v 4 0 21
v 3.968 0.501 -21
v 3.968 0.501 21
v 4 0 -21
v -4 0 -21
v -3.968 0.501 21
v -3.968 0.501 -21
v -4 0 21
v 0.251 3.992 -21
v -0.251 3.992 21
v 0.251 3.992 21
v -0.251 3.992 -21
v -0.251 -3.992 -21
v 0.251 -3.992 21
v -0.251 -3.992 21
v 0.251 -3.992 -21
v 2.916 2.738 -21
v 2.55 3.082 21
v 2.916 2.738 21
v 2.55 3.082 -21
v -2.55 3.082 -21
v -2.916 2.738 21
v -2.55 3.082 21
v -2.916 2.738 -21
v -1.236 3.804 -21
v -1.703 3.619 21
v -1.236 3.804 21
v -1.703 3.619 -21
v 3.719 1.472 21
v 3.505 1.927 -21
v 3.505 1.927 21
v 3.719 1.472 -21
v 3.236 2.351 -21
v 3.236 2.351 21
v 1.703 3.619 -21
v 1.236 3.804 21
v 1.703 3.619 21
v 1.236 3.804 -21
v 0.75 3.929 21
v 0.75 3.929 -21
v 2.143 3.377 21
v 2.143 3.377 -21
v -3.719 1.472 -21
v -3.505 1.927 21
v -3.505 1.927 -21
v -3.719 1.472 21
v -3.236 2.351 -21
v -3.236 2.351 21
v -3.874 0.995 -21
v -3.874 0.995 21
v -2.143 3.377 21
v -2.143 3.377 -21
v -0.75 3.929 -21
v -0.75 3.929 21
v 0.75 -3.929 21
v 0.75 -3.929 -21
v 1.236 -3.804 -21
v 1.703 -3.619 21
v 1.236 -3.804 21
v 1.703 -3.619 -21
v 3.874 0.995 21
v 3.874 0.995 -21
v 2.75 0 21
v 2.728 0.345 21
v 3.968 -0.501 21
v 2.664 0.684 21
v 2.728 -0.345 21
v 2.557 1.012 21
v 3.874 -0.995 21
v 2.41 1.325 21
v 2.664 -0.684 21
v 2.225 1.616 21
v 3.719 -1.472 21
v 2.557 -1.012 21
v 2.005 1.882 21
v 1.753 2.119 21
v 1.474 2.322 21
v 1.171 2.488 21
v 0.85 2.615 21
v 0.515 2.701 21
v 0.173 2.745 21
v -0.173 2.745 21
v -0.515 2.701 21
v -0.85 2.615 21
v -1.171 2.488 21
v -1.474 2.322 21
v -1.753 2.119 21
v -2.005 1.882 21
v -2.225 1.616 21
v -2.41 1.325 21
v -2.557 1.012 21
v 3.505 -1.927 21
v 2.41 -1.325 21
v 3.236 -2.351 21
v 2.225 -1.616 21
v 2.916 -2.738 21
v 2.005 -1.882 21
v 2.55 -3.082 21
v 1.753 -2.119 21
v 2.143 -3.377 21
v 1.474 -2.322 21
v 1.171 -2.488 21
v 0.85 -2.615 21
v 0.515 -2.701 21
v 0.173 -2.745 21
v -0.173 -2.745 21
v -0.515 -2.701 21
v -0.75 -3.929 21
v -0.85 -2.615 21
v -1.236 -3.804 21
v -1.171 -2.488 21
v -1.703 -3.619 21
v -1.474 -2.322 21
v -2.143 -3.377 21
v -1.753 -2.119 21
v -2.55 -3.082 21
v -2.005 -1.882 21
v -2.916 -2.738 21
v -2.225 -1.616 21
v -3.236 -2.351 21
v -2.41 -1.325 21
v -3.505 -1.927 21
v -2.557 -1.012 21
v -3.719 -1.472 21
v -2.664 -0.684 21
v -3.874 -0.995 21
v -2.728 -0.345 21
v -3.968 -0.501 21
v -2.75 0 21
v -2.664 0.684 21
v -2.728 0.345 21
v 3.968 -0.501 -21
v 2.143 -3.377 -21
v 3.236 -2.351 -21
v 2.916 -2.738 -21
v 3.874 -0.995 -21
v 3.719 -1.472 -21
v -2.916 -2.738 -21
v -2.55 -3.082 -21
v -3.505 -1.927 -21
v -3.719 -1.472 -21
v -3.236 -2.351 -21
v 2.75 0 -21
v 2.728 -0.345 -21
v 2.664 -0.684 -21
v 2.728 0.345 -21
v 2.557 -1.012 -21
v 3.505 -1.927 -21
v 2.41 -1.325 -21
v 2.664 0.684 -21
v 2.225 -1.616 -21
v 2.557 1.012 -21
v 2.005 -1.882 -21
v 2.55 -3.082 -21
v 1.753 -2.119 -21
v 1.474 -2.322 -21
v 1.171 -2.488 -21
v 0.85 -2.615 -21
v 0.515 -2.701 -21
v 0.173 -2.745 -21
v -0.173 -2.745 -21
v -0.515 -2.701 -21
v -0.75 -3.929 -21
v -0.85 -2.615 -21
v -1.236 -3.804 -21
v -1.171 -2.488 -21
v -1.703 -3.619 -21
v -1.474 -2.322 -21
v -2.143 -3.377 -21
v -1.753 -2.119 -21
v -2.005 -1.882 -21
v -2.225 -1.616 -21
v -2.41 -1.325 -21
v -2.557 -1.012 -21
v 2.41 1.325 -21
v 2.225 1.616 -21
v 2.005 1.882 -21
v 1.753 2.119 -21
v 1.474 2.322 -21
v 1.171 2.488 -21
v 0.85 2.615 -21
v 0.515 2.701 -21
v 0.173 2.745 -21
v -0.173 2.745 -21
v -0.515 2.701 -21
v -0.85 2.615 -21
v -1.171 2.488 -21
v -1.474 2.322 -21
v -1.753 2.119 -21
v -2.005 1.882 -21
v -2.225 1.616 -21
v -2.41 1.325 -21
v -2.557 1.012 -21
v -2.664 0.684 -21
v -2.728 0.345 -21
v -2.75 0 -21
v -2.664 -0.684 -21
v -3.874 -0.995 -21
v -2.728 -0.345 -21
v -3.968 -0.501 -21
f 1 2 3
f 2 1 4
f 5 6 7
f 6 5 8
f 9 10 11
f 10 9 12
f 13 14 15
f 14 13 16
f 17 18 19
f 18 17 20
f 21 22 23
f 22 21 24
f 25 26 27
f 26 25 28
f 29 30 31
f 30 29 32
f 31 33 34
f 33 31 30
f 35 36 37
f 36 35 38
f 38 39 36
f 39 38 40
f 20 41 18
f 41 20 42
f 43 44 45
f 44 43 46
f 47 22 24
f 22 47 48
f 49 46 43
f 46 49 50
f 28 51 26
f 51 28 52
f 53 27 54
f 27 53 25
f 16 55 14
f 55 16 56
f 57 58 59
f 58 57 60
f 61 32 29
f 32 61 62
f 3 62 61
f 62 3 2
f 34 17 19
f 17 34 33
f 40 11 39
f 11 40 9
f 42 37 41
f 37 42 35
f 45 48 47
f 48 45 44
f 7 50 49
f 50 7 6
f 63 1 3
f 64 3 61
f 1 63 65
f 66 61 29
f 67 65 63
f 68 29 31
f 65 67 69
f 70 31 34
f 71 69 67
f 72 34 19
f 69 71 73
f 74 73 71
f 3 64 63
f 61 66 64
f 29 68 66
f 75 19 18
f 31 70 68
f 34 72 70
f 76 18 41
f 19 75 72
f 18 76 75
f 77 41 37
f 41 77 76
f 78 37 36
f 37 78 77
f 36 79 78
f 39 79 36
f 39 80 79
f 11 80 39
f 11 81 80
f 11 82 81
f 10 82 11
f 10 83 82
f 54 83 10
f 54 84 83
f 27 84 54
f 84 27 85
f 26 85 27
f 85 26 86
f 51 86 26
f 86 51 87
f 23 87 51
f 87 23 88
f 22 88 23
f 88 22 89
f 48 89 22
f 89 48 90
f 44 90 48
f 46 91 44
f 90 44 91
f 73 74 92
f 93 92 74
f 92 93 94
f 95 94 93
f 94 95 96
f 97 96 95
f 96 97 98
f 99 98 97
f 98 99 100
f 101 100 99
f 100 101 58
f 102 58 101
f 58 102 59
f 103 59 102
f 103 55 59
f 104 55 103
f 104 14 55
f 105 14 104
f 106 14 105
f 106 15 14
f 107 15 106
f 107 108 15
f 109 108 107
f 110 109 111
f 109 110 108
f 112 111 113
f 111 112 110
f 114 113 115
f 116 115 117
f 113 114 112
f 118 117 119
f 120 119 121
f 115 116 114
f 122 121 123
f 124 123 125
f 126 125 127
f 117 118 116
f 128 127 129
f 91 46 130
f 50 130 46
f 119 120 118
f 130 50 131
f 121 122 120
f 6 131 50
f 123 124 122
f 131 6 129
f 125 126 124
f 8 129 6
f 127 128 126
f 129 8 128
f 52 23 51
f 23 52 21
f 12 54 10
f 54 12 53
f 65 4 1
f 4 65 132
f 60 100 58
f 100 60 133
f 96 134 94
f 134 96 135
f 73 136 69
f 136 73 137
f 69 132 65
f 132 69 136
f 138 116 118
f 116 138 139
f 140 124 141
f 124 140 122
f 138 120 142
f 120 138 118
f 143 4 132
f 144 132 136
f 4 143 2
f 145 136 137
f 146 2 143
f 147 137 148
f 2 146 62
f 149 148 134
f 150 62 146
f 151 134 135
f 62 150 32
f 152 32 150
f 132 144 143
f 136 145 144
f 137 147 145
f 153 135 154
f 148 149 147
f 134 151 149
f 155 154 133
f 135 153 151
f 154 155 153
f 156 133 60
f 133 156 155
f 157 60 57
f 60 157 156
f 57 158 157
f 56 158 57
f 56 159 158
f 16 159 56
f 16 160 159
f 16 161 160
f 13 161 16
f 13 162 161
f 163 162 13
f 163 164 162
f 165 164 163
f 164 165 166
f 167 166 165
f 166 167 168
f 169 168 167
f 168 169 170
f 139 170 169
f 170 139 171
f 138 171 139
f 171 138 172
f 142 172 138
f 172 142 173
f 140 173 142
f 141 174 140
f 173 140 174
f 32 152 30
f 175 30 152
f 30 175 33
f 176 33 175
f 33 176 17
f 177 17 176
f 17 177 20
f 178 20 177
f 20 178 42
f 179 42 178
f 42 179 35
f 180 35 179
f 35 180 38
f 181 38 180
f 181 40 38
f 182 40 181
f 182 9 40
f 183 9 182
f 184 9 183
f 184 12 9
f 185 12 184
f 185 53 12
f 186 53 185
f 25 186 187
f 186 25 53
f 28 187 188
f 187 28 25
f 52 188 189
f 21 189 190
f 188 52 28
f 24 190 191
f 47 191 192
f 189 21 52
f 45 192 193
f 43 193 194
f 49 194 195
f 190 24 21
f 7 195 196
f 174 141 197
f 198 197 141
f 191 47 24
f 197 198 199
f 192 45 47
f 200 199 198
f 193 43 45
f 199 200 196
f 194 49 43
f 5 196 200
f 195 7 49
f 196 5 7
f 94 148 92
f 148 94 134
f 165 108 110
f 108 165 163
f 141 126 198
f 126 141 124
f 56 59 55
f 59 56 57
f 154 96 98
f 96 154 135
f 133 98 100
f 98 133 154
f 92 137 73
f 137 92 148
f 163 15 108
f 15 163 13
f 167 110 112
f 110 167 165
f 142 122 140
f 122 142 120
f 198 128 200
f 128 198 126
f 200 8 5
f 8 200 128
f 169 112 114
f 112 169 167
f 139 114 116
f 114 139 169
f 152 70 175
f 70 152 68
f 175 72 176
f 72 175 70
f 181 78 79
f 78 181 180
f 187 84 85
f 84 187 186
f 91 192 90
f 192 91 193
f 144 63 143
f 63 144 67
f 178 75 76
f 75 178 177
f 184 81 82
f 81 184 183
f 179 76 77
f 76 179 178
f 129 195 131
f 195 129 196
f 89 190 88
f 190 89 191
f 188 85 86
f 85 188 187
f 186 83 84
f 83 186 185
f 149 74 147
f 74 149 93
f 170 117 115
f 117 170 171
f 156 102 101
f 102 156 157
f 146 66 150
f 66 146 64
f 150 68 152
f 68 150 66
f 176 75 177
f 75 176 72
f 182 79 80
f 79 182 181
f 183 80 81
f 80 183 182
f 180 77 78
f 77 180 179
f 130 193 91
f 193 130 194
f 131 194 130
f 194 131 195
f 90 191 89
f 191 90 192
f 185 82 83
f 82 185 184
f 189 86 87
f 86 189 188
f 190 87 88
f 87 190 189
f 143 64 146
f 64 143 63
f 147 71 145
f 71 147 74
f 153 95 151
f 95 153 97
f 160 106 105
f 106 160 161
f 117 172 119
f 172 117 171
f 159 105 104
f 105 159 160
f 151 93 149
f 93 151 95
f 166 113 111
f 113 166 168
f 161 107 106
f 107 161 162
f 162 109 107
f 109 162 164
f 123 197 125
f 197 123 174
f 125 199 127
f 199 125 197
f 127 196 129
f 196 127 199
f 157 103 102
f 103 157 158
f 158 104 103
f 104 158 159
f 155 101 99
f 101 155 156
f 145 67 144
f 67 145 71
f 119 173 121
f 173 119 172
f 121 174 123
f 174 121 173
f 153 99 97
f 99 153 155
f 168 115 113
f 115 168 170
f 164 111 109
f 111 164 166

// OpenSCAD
$fn = 50;


difference() {
	union() {
		translate(v = [0, 0, -21.0000000000]) {
			cylinder(h = 42, r = 4.0000000000);
		}
	}
	union() {
		translate(v = [0, 0, -100.0000000000]) {
			cylinder(h = 200, r = 2.7500000000);
		}
	}
}
